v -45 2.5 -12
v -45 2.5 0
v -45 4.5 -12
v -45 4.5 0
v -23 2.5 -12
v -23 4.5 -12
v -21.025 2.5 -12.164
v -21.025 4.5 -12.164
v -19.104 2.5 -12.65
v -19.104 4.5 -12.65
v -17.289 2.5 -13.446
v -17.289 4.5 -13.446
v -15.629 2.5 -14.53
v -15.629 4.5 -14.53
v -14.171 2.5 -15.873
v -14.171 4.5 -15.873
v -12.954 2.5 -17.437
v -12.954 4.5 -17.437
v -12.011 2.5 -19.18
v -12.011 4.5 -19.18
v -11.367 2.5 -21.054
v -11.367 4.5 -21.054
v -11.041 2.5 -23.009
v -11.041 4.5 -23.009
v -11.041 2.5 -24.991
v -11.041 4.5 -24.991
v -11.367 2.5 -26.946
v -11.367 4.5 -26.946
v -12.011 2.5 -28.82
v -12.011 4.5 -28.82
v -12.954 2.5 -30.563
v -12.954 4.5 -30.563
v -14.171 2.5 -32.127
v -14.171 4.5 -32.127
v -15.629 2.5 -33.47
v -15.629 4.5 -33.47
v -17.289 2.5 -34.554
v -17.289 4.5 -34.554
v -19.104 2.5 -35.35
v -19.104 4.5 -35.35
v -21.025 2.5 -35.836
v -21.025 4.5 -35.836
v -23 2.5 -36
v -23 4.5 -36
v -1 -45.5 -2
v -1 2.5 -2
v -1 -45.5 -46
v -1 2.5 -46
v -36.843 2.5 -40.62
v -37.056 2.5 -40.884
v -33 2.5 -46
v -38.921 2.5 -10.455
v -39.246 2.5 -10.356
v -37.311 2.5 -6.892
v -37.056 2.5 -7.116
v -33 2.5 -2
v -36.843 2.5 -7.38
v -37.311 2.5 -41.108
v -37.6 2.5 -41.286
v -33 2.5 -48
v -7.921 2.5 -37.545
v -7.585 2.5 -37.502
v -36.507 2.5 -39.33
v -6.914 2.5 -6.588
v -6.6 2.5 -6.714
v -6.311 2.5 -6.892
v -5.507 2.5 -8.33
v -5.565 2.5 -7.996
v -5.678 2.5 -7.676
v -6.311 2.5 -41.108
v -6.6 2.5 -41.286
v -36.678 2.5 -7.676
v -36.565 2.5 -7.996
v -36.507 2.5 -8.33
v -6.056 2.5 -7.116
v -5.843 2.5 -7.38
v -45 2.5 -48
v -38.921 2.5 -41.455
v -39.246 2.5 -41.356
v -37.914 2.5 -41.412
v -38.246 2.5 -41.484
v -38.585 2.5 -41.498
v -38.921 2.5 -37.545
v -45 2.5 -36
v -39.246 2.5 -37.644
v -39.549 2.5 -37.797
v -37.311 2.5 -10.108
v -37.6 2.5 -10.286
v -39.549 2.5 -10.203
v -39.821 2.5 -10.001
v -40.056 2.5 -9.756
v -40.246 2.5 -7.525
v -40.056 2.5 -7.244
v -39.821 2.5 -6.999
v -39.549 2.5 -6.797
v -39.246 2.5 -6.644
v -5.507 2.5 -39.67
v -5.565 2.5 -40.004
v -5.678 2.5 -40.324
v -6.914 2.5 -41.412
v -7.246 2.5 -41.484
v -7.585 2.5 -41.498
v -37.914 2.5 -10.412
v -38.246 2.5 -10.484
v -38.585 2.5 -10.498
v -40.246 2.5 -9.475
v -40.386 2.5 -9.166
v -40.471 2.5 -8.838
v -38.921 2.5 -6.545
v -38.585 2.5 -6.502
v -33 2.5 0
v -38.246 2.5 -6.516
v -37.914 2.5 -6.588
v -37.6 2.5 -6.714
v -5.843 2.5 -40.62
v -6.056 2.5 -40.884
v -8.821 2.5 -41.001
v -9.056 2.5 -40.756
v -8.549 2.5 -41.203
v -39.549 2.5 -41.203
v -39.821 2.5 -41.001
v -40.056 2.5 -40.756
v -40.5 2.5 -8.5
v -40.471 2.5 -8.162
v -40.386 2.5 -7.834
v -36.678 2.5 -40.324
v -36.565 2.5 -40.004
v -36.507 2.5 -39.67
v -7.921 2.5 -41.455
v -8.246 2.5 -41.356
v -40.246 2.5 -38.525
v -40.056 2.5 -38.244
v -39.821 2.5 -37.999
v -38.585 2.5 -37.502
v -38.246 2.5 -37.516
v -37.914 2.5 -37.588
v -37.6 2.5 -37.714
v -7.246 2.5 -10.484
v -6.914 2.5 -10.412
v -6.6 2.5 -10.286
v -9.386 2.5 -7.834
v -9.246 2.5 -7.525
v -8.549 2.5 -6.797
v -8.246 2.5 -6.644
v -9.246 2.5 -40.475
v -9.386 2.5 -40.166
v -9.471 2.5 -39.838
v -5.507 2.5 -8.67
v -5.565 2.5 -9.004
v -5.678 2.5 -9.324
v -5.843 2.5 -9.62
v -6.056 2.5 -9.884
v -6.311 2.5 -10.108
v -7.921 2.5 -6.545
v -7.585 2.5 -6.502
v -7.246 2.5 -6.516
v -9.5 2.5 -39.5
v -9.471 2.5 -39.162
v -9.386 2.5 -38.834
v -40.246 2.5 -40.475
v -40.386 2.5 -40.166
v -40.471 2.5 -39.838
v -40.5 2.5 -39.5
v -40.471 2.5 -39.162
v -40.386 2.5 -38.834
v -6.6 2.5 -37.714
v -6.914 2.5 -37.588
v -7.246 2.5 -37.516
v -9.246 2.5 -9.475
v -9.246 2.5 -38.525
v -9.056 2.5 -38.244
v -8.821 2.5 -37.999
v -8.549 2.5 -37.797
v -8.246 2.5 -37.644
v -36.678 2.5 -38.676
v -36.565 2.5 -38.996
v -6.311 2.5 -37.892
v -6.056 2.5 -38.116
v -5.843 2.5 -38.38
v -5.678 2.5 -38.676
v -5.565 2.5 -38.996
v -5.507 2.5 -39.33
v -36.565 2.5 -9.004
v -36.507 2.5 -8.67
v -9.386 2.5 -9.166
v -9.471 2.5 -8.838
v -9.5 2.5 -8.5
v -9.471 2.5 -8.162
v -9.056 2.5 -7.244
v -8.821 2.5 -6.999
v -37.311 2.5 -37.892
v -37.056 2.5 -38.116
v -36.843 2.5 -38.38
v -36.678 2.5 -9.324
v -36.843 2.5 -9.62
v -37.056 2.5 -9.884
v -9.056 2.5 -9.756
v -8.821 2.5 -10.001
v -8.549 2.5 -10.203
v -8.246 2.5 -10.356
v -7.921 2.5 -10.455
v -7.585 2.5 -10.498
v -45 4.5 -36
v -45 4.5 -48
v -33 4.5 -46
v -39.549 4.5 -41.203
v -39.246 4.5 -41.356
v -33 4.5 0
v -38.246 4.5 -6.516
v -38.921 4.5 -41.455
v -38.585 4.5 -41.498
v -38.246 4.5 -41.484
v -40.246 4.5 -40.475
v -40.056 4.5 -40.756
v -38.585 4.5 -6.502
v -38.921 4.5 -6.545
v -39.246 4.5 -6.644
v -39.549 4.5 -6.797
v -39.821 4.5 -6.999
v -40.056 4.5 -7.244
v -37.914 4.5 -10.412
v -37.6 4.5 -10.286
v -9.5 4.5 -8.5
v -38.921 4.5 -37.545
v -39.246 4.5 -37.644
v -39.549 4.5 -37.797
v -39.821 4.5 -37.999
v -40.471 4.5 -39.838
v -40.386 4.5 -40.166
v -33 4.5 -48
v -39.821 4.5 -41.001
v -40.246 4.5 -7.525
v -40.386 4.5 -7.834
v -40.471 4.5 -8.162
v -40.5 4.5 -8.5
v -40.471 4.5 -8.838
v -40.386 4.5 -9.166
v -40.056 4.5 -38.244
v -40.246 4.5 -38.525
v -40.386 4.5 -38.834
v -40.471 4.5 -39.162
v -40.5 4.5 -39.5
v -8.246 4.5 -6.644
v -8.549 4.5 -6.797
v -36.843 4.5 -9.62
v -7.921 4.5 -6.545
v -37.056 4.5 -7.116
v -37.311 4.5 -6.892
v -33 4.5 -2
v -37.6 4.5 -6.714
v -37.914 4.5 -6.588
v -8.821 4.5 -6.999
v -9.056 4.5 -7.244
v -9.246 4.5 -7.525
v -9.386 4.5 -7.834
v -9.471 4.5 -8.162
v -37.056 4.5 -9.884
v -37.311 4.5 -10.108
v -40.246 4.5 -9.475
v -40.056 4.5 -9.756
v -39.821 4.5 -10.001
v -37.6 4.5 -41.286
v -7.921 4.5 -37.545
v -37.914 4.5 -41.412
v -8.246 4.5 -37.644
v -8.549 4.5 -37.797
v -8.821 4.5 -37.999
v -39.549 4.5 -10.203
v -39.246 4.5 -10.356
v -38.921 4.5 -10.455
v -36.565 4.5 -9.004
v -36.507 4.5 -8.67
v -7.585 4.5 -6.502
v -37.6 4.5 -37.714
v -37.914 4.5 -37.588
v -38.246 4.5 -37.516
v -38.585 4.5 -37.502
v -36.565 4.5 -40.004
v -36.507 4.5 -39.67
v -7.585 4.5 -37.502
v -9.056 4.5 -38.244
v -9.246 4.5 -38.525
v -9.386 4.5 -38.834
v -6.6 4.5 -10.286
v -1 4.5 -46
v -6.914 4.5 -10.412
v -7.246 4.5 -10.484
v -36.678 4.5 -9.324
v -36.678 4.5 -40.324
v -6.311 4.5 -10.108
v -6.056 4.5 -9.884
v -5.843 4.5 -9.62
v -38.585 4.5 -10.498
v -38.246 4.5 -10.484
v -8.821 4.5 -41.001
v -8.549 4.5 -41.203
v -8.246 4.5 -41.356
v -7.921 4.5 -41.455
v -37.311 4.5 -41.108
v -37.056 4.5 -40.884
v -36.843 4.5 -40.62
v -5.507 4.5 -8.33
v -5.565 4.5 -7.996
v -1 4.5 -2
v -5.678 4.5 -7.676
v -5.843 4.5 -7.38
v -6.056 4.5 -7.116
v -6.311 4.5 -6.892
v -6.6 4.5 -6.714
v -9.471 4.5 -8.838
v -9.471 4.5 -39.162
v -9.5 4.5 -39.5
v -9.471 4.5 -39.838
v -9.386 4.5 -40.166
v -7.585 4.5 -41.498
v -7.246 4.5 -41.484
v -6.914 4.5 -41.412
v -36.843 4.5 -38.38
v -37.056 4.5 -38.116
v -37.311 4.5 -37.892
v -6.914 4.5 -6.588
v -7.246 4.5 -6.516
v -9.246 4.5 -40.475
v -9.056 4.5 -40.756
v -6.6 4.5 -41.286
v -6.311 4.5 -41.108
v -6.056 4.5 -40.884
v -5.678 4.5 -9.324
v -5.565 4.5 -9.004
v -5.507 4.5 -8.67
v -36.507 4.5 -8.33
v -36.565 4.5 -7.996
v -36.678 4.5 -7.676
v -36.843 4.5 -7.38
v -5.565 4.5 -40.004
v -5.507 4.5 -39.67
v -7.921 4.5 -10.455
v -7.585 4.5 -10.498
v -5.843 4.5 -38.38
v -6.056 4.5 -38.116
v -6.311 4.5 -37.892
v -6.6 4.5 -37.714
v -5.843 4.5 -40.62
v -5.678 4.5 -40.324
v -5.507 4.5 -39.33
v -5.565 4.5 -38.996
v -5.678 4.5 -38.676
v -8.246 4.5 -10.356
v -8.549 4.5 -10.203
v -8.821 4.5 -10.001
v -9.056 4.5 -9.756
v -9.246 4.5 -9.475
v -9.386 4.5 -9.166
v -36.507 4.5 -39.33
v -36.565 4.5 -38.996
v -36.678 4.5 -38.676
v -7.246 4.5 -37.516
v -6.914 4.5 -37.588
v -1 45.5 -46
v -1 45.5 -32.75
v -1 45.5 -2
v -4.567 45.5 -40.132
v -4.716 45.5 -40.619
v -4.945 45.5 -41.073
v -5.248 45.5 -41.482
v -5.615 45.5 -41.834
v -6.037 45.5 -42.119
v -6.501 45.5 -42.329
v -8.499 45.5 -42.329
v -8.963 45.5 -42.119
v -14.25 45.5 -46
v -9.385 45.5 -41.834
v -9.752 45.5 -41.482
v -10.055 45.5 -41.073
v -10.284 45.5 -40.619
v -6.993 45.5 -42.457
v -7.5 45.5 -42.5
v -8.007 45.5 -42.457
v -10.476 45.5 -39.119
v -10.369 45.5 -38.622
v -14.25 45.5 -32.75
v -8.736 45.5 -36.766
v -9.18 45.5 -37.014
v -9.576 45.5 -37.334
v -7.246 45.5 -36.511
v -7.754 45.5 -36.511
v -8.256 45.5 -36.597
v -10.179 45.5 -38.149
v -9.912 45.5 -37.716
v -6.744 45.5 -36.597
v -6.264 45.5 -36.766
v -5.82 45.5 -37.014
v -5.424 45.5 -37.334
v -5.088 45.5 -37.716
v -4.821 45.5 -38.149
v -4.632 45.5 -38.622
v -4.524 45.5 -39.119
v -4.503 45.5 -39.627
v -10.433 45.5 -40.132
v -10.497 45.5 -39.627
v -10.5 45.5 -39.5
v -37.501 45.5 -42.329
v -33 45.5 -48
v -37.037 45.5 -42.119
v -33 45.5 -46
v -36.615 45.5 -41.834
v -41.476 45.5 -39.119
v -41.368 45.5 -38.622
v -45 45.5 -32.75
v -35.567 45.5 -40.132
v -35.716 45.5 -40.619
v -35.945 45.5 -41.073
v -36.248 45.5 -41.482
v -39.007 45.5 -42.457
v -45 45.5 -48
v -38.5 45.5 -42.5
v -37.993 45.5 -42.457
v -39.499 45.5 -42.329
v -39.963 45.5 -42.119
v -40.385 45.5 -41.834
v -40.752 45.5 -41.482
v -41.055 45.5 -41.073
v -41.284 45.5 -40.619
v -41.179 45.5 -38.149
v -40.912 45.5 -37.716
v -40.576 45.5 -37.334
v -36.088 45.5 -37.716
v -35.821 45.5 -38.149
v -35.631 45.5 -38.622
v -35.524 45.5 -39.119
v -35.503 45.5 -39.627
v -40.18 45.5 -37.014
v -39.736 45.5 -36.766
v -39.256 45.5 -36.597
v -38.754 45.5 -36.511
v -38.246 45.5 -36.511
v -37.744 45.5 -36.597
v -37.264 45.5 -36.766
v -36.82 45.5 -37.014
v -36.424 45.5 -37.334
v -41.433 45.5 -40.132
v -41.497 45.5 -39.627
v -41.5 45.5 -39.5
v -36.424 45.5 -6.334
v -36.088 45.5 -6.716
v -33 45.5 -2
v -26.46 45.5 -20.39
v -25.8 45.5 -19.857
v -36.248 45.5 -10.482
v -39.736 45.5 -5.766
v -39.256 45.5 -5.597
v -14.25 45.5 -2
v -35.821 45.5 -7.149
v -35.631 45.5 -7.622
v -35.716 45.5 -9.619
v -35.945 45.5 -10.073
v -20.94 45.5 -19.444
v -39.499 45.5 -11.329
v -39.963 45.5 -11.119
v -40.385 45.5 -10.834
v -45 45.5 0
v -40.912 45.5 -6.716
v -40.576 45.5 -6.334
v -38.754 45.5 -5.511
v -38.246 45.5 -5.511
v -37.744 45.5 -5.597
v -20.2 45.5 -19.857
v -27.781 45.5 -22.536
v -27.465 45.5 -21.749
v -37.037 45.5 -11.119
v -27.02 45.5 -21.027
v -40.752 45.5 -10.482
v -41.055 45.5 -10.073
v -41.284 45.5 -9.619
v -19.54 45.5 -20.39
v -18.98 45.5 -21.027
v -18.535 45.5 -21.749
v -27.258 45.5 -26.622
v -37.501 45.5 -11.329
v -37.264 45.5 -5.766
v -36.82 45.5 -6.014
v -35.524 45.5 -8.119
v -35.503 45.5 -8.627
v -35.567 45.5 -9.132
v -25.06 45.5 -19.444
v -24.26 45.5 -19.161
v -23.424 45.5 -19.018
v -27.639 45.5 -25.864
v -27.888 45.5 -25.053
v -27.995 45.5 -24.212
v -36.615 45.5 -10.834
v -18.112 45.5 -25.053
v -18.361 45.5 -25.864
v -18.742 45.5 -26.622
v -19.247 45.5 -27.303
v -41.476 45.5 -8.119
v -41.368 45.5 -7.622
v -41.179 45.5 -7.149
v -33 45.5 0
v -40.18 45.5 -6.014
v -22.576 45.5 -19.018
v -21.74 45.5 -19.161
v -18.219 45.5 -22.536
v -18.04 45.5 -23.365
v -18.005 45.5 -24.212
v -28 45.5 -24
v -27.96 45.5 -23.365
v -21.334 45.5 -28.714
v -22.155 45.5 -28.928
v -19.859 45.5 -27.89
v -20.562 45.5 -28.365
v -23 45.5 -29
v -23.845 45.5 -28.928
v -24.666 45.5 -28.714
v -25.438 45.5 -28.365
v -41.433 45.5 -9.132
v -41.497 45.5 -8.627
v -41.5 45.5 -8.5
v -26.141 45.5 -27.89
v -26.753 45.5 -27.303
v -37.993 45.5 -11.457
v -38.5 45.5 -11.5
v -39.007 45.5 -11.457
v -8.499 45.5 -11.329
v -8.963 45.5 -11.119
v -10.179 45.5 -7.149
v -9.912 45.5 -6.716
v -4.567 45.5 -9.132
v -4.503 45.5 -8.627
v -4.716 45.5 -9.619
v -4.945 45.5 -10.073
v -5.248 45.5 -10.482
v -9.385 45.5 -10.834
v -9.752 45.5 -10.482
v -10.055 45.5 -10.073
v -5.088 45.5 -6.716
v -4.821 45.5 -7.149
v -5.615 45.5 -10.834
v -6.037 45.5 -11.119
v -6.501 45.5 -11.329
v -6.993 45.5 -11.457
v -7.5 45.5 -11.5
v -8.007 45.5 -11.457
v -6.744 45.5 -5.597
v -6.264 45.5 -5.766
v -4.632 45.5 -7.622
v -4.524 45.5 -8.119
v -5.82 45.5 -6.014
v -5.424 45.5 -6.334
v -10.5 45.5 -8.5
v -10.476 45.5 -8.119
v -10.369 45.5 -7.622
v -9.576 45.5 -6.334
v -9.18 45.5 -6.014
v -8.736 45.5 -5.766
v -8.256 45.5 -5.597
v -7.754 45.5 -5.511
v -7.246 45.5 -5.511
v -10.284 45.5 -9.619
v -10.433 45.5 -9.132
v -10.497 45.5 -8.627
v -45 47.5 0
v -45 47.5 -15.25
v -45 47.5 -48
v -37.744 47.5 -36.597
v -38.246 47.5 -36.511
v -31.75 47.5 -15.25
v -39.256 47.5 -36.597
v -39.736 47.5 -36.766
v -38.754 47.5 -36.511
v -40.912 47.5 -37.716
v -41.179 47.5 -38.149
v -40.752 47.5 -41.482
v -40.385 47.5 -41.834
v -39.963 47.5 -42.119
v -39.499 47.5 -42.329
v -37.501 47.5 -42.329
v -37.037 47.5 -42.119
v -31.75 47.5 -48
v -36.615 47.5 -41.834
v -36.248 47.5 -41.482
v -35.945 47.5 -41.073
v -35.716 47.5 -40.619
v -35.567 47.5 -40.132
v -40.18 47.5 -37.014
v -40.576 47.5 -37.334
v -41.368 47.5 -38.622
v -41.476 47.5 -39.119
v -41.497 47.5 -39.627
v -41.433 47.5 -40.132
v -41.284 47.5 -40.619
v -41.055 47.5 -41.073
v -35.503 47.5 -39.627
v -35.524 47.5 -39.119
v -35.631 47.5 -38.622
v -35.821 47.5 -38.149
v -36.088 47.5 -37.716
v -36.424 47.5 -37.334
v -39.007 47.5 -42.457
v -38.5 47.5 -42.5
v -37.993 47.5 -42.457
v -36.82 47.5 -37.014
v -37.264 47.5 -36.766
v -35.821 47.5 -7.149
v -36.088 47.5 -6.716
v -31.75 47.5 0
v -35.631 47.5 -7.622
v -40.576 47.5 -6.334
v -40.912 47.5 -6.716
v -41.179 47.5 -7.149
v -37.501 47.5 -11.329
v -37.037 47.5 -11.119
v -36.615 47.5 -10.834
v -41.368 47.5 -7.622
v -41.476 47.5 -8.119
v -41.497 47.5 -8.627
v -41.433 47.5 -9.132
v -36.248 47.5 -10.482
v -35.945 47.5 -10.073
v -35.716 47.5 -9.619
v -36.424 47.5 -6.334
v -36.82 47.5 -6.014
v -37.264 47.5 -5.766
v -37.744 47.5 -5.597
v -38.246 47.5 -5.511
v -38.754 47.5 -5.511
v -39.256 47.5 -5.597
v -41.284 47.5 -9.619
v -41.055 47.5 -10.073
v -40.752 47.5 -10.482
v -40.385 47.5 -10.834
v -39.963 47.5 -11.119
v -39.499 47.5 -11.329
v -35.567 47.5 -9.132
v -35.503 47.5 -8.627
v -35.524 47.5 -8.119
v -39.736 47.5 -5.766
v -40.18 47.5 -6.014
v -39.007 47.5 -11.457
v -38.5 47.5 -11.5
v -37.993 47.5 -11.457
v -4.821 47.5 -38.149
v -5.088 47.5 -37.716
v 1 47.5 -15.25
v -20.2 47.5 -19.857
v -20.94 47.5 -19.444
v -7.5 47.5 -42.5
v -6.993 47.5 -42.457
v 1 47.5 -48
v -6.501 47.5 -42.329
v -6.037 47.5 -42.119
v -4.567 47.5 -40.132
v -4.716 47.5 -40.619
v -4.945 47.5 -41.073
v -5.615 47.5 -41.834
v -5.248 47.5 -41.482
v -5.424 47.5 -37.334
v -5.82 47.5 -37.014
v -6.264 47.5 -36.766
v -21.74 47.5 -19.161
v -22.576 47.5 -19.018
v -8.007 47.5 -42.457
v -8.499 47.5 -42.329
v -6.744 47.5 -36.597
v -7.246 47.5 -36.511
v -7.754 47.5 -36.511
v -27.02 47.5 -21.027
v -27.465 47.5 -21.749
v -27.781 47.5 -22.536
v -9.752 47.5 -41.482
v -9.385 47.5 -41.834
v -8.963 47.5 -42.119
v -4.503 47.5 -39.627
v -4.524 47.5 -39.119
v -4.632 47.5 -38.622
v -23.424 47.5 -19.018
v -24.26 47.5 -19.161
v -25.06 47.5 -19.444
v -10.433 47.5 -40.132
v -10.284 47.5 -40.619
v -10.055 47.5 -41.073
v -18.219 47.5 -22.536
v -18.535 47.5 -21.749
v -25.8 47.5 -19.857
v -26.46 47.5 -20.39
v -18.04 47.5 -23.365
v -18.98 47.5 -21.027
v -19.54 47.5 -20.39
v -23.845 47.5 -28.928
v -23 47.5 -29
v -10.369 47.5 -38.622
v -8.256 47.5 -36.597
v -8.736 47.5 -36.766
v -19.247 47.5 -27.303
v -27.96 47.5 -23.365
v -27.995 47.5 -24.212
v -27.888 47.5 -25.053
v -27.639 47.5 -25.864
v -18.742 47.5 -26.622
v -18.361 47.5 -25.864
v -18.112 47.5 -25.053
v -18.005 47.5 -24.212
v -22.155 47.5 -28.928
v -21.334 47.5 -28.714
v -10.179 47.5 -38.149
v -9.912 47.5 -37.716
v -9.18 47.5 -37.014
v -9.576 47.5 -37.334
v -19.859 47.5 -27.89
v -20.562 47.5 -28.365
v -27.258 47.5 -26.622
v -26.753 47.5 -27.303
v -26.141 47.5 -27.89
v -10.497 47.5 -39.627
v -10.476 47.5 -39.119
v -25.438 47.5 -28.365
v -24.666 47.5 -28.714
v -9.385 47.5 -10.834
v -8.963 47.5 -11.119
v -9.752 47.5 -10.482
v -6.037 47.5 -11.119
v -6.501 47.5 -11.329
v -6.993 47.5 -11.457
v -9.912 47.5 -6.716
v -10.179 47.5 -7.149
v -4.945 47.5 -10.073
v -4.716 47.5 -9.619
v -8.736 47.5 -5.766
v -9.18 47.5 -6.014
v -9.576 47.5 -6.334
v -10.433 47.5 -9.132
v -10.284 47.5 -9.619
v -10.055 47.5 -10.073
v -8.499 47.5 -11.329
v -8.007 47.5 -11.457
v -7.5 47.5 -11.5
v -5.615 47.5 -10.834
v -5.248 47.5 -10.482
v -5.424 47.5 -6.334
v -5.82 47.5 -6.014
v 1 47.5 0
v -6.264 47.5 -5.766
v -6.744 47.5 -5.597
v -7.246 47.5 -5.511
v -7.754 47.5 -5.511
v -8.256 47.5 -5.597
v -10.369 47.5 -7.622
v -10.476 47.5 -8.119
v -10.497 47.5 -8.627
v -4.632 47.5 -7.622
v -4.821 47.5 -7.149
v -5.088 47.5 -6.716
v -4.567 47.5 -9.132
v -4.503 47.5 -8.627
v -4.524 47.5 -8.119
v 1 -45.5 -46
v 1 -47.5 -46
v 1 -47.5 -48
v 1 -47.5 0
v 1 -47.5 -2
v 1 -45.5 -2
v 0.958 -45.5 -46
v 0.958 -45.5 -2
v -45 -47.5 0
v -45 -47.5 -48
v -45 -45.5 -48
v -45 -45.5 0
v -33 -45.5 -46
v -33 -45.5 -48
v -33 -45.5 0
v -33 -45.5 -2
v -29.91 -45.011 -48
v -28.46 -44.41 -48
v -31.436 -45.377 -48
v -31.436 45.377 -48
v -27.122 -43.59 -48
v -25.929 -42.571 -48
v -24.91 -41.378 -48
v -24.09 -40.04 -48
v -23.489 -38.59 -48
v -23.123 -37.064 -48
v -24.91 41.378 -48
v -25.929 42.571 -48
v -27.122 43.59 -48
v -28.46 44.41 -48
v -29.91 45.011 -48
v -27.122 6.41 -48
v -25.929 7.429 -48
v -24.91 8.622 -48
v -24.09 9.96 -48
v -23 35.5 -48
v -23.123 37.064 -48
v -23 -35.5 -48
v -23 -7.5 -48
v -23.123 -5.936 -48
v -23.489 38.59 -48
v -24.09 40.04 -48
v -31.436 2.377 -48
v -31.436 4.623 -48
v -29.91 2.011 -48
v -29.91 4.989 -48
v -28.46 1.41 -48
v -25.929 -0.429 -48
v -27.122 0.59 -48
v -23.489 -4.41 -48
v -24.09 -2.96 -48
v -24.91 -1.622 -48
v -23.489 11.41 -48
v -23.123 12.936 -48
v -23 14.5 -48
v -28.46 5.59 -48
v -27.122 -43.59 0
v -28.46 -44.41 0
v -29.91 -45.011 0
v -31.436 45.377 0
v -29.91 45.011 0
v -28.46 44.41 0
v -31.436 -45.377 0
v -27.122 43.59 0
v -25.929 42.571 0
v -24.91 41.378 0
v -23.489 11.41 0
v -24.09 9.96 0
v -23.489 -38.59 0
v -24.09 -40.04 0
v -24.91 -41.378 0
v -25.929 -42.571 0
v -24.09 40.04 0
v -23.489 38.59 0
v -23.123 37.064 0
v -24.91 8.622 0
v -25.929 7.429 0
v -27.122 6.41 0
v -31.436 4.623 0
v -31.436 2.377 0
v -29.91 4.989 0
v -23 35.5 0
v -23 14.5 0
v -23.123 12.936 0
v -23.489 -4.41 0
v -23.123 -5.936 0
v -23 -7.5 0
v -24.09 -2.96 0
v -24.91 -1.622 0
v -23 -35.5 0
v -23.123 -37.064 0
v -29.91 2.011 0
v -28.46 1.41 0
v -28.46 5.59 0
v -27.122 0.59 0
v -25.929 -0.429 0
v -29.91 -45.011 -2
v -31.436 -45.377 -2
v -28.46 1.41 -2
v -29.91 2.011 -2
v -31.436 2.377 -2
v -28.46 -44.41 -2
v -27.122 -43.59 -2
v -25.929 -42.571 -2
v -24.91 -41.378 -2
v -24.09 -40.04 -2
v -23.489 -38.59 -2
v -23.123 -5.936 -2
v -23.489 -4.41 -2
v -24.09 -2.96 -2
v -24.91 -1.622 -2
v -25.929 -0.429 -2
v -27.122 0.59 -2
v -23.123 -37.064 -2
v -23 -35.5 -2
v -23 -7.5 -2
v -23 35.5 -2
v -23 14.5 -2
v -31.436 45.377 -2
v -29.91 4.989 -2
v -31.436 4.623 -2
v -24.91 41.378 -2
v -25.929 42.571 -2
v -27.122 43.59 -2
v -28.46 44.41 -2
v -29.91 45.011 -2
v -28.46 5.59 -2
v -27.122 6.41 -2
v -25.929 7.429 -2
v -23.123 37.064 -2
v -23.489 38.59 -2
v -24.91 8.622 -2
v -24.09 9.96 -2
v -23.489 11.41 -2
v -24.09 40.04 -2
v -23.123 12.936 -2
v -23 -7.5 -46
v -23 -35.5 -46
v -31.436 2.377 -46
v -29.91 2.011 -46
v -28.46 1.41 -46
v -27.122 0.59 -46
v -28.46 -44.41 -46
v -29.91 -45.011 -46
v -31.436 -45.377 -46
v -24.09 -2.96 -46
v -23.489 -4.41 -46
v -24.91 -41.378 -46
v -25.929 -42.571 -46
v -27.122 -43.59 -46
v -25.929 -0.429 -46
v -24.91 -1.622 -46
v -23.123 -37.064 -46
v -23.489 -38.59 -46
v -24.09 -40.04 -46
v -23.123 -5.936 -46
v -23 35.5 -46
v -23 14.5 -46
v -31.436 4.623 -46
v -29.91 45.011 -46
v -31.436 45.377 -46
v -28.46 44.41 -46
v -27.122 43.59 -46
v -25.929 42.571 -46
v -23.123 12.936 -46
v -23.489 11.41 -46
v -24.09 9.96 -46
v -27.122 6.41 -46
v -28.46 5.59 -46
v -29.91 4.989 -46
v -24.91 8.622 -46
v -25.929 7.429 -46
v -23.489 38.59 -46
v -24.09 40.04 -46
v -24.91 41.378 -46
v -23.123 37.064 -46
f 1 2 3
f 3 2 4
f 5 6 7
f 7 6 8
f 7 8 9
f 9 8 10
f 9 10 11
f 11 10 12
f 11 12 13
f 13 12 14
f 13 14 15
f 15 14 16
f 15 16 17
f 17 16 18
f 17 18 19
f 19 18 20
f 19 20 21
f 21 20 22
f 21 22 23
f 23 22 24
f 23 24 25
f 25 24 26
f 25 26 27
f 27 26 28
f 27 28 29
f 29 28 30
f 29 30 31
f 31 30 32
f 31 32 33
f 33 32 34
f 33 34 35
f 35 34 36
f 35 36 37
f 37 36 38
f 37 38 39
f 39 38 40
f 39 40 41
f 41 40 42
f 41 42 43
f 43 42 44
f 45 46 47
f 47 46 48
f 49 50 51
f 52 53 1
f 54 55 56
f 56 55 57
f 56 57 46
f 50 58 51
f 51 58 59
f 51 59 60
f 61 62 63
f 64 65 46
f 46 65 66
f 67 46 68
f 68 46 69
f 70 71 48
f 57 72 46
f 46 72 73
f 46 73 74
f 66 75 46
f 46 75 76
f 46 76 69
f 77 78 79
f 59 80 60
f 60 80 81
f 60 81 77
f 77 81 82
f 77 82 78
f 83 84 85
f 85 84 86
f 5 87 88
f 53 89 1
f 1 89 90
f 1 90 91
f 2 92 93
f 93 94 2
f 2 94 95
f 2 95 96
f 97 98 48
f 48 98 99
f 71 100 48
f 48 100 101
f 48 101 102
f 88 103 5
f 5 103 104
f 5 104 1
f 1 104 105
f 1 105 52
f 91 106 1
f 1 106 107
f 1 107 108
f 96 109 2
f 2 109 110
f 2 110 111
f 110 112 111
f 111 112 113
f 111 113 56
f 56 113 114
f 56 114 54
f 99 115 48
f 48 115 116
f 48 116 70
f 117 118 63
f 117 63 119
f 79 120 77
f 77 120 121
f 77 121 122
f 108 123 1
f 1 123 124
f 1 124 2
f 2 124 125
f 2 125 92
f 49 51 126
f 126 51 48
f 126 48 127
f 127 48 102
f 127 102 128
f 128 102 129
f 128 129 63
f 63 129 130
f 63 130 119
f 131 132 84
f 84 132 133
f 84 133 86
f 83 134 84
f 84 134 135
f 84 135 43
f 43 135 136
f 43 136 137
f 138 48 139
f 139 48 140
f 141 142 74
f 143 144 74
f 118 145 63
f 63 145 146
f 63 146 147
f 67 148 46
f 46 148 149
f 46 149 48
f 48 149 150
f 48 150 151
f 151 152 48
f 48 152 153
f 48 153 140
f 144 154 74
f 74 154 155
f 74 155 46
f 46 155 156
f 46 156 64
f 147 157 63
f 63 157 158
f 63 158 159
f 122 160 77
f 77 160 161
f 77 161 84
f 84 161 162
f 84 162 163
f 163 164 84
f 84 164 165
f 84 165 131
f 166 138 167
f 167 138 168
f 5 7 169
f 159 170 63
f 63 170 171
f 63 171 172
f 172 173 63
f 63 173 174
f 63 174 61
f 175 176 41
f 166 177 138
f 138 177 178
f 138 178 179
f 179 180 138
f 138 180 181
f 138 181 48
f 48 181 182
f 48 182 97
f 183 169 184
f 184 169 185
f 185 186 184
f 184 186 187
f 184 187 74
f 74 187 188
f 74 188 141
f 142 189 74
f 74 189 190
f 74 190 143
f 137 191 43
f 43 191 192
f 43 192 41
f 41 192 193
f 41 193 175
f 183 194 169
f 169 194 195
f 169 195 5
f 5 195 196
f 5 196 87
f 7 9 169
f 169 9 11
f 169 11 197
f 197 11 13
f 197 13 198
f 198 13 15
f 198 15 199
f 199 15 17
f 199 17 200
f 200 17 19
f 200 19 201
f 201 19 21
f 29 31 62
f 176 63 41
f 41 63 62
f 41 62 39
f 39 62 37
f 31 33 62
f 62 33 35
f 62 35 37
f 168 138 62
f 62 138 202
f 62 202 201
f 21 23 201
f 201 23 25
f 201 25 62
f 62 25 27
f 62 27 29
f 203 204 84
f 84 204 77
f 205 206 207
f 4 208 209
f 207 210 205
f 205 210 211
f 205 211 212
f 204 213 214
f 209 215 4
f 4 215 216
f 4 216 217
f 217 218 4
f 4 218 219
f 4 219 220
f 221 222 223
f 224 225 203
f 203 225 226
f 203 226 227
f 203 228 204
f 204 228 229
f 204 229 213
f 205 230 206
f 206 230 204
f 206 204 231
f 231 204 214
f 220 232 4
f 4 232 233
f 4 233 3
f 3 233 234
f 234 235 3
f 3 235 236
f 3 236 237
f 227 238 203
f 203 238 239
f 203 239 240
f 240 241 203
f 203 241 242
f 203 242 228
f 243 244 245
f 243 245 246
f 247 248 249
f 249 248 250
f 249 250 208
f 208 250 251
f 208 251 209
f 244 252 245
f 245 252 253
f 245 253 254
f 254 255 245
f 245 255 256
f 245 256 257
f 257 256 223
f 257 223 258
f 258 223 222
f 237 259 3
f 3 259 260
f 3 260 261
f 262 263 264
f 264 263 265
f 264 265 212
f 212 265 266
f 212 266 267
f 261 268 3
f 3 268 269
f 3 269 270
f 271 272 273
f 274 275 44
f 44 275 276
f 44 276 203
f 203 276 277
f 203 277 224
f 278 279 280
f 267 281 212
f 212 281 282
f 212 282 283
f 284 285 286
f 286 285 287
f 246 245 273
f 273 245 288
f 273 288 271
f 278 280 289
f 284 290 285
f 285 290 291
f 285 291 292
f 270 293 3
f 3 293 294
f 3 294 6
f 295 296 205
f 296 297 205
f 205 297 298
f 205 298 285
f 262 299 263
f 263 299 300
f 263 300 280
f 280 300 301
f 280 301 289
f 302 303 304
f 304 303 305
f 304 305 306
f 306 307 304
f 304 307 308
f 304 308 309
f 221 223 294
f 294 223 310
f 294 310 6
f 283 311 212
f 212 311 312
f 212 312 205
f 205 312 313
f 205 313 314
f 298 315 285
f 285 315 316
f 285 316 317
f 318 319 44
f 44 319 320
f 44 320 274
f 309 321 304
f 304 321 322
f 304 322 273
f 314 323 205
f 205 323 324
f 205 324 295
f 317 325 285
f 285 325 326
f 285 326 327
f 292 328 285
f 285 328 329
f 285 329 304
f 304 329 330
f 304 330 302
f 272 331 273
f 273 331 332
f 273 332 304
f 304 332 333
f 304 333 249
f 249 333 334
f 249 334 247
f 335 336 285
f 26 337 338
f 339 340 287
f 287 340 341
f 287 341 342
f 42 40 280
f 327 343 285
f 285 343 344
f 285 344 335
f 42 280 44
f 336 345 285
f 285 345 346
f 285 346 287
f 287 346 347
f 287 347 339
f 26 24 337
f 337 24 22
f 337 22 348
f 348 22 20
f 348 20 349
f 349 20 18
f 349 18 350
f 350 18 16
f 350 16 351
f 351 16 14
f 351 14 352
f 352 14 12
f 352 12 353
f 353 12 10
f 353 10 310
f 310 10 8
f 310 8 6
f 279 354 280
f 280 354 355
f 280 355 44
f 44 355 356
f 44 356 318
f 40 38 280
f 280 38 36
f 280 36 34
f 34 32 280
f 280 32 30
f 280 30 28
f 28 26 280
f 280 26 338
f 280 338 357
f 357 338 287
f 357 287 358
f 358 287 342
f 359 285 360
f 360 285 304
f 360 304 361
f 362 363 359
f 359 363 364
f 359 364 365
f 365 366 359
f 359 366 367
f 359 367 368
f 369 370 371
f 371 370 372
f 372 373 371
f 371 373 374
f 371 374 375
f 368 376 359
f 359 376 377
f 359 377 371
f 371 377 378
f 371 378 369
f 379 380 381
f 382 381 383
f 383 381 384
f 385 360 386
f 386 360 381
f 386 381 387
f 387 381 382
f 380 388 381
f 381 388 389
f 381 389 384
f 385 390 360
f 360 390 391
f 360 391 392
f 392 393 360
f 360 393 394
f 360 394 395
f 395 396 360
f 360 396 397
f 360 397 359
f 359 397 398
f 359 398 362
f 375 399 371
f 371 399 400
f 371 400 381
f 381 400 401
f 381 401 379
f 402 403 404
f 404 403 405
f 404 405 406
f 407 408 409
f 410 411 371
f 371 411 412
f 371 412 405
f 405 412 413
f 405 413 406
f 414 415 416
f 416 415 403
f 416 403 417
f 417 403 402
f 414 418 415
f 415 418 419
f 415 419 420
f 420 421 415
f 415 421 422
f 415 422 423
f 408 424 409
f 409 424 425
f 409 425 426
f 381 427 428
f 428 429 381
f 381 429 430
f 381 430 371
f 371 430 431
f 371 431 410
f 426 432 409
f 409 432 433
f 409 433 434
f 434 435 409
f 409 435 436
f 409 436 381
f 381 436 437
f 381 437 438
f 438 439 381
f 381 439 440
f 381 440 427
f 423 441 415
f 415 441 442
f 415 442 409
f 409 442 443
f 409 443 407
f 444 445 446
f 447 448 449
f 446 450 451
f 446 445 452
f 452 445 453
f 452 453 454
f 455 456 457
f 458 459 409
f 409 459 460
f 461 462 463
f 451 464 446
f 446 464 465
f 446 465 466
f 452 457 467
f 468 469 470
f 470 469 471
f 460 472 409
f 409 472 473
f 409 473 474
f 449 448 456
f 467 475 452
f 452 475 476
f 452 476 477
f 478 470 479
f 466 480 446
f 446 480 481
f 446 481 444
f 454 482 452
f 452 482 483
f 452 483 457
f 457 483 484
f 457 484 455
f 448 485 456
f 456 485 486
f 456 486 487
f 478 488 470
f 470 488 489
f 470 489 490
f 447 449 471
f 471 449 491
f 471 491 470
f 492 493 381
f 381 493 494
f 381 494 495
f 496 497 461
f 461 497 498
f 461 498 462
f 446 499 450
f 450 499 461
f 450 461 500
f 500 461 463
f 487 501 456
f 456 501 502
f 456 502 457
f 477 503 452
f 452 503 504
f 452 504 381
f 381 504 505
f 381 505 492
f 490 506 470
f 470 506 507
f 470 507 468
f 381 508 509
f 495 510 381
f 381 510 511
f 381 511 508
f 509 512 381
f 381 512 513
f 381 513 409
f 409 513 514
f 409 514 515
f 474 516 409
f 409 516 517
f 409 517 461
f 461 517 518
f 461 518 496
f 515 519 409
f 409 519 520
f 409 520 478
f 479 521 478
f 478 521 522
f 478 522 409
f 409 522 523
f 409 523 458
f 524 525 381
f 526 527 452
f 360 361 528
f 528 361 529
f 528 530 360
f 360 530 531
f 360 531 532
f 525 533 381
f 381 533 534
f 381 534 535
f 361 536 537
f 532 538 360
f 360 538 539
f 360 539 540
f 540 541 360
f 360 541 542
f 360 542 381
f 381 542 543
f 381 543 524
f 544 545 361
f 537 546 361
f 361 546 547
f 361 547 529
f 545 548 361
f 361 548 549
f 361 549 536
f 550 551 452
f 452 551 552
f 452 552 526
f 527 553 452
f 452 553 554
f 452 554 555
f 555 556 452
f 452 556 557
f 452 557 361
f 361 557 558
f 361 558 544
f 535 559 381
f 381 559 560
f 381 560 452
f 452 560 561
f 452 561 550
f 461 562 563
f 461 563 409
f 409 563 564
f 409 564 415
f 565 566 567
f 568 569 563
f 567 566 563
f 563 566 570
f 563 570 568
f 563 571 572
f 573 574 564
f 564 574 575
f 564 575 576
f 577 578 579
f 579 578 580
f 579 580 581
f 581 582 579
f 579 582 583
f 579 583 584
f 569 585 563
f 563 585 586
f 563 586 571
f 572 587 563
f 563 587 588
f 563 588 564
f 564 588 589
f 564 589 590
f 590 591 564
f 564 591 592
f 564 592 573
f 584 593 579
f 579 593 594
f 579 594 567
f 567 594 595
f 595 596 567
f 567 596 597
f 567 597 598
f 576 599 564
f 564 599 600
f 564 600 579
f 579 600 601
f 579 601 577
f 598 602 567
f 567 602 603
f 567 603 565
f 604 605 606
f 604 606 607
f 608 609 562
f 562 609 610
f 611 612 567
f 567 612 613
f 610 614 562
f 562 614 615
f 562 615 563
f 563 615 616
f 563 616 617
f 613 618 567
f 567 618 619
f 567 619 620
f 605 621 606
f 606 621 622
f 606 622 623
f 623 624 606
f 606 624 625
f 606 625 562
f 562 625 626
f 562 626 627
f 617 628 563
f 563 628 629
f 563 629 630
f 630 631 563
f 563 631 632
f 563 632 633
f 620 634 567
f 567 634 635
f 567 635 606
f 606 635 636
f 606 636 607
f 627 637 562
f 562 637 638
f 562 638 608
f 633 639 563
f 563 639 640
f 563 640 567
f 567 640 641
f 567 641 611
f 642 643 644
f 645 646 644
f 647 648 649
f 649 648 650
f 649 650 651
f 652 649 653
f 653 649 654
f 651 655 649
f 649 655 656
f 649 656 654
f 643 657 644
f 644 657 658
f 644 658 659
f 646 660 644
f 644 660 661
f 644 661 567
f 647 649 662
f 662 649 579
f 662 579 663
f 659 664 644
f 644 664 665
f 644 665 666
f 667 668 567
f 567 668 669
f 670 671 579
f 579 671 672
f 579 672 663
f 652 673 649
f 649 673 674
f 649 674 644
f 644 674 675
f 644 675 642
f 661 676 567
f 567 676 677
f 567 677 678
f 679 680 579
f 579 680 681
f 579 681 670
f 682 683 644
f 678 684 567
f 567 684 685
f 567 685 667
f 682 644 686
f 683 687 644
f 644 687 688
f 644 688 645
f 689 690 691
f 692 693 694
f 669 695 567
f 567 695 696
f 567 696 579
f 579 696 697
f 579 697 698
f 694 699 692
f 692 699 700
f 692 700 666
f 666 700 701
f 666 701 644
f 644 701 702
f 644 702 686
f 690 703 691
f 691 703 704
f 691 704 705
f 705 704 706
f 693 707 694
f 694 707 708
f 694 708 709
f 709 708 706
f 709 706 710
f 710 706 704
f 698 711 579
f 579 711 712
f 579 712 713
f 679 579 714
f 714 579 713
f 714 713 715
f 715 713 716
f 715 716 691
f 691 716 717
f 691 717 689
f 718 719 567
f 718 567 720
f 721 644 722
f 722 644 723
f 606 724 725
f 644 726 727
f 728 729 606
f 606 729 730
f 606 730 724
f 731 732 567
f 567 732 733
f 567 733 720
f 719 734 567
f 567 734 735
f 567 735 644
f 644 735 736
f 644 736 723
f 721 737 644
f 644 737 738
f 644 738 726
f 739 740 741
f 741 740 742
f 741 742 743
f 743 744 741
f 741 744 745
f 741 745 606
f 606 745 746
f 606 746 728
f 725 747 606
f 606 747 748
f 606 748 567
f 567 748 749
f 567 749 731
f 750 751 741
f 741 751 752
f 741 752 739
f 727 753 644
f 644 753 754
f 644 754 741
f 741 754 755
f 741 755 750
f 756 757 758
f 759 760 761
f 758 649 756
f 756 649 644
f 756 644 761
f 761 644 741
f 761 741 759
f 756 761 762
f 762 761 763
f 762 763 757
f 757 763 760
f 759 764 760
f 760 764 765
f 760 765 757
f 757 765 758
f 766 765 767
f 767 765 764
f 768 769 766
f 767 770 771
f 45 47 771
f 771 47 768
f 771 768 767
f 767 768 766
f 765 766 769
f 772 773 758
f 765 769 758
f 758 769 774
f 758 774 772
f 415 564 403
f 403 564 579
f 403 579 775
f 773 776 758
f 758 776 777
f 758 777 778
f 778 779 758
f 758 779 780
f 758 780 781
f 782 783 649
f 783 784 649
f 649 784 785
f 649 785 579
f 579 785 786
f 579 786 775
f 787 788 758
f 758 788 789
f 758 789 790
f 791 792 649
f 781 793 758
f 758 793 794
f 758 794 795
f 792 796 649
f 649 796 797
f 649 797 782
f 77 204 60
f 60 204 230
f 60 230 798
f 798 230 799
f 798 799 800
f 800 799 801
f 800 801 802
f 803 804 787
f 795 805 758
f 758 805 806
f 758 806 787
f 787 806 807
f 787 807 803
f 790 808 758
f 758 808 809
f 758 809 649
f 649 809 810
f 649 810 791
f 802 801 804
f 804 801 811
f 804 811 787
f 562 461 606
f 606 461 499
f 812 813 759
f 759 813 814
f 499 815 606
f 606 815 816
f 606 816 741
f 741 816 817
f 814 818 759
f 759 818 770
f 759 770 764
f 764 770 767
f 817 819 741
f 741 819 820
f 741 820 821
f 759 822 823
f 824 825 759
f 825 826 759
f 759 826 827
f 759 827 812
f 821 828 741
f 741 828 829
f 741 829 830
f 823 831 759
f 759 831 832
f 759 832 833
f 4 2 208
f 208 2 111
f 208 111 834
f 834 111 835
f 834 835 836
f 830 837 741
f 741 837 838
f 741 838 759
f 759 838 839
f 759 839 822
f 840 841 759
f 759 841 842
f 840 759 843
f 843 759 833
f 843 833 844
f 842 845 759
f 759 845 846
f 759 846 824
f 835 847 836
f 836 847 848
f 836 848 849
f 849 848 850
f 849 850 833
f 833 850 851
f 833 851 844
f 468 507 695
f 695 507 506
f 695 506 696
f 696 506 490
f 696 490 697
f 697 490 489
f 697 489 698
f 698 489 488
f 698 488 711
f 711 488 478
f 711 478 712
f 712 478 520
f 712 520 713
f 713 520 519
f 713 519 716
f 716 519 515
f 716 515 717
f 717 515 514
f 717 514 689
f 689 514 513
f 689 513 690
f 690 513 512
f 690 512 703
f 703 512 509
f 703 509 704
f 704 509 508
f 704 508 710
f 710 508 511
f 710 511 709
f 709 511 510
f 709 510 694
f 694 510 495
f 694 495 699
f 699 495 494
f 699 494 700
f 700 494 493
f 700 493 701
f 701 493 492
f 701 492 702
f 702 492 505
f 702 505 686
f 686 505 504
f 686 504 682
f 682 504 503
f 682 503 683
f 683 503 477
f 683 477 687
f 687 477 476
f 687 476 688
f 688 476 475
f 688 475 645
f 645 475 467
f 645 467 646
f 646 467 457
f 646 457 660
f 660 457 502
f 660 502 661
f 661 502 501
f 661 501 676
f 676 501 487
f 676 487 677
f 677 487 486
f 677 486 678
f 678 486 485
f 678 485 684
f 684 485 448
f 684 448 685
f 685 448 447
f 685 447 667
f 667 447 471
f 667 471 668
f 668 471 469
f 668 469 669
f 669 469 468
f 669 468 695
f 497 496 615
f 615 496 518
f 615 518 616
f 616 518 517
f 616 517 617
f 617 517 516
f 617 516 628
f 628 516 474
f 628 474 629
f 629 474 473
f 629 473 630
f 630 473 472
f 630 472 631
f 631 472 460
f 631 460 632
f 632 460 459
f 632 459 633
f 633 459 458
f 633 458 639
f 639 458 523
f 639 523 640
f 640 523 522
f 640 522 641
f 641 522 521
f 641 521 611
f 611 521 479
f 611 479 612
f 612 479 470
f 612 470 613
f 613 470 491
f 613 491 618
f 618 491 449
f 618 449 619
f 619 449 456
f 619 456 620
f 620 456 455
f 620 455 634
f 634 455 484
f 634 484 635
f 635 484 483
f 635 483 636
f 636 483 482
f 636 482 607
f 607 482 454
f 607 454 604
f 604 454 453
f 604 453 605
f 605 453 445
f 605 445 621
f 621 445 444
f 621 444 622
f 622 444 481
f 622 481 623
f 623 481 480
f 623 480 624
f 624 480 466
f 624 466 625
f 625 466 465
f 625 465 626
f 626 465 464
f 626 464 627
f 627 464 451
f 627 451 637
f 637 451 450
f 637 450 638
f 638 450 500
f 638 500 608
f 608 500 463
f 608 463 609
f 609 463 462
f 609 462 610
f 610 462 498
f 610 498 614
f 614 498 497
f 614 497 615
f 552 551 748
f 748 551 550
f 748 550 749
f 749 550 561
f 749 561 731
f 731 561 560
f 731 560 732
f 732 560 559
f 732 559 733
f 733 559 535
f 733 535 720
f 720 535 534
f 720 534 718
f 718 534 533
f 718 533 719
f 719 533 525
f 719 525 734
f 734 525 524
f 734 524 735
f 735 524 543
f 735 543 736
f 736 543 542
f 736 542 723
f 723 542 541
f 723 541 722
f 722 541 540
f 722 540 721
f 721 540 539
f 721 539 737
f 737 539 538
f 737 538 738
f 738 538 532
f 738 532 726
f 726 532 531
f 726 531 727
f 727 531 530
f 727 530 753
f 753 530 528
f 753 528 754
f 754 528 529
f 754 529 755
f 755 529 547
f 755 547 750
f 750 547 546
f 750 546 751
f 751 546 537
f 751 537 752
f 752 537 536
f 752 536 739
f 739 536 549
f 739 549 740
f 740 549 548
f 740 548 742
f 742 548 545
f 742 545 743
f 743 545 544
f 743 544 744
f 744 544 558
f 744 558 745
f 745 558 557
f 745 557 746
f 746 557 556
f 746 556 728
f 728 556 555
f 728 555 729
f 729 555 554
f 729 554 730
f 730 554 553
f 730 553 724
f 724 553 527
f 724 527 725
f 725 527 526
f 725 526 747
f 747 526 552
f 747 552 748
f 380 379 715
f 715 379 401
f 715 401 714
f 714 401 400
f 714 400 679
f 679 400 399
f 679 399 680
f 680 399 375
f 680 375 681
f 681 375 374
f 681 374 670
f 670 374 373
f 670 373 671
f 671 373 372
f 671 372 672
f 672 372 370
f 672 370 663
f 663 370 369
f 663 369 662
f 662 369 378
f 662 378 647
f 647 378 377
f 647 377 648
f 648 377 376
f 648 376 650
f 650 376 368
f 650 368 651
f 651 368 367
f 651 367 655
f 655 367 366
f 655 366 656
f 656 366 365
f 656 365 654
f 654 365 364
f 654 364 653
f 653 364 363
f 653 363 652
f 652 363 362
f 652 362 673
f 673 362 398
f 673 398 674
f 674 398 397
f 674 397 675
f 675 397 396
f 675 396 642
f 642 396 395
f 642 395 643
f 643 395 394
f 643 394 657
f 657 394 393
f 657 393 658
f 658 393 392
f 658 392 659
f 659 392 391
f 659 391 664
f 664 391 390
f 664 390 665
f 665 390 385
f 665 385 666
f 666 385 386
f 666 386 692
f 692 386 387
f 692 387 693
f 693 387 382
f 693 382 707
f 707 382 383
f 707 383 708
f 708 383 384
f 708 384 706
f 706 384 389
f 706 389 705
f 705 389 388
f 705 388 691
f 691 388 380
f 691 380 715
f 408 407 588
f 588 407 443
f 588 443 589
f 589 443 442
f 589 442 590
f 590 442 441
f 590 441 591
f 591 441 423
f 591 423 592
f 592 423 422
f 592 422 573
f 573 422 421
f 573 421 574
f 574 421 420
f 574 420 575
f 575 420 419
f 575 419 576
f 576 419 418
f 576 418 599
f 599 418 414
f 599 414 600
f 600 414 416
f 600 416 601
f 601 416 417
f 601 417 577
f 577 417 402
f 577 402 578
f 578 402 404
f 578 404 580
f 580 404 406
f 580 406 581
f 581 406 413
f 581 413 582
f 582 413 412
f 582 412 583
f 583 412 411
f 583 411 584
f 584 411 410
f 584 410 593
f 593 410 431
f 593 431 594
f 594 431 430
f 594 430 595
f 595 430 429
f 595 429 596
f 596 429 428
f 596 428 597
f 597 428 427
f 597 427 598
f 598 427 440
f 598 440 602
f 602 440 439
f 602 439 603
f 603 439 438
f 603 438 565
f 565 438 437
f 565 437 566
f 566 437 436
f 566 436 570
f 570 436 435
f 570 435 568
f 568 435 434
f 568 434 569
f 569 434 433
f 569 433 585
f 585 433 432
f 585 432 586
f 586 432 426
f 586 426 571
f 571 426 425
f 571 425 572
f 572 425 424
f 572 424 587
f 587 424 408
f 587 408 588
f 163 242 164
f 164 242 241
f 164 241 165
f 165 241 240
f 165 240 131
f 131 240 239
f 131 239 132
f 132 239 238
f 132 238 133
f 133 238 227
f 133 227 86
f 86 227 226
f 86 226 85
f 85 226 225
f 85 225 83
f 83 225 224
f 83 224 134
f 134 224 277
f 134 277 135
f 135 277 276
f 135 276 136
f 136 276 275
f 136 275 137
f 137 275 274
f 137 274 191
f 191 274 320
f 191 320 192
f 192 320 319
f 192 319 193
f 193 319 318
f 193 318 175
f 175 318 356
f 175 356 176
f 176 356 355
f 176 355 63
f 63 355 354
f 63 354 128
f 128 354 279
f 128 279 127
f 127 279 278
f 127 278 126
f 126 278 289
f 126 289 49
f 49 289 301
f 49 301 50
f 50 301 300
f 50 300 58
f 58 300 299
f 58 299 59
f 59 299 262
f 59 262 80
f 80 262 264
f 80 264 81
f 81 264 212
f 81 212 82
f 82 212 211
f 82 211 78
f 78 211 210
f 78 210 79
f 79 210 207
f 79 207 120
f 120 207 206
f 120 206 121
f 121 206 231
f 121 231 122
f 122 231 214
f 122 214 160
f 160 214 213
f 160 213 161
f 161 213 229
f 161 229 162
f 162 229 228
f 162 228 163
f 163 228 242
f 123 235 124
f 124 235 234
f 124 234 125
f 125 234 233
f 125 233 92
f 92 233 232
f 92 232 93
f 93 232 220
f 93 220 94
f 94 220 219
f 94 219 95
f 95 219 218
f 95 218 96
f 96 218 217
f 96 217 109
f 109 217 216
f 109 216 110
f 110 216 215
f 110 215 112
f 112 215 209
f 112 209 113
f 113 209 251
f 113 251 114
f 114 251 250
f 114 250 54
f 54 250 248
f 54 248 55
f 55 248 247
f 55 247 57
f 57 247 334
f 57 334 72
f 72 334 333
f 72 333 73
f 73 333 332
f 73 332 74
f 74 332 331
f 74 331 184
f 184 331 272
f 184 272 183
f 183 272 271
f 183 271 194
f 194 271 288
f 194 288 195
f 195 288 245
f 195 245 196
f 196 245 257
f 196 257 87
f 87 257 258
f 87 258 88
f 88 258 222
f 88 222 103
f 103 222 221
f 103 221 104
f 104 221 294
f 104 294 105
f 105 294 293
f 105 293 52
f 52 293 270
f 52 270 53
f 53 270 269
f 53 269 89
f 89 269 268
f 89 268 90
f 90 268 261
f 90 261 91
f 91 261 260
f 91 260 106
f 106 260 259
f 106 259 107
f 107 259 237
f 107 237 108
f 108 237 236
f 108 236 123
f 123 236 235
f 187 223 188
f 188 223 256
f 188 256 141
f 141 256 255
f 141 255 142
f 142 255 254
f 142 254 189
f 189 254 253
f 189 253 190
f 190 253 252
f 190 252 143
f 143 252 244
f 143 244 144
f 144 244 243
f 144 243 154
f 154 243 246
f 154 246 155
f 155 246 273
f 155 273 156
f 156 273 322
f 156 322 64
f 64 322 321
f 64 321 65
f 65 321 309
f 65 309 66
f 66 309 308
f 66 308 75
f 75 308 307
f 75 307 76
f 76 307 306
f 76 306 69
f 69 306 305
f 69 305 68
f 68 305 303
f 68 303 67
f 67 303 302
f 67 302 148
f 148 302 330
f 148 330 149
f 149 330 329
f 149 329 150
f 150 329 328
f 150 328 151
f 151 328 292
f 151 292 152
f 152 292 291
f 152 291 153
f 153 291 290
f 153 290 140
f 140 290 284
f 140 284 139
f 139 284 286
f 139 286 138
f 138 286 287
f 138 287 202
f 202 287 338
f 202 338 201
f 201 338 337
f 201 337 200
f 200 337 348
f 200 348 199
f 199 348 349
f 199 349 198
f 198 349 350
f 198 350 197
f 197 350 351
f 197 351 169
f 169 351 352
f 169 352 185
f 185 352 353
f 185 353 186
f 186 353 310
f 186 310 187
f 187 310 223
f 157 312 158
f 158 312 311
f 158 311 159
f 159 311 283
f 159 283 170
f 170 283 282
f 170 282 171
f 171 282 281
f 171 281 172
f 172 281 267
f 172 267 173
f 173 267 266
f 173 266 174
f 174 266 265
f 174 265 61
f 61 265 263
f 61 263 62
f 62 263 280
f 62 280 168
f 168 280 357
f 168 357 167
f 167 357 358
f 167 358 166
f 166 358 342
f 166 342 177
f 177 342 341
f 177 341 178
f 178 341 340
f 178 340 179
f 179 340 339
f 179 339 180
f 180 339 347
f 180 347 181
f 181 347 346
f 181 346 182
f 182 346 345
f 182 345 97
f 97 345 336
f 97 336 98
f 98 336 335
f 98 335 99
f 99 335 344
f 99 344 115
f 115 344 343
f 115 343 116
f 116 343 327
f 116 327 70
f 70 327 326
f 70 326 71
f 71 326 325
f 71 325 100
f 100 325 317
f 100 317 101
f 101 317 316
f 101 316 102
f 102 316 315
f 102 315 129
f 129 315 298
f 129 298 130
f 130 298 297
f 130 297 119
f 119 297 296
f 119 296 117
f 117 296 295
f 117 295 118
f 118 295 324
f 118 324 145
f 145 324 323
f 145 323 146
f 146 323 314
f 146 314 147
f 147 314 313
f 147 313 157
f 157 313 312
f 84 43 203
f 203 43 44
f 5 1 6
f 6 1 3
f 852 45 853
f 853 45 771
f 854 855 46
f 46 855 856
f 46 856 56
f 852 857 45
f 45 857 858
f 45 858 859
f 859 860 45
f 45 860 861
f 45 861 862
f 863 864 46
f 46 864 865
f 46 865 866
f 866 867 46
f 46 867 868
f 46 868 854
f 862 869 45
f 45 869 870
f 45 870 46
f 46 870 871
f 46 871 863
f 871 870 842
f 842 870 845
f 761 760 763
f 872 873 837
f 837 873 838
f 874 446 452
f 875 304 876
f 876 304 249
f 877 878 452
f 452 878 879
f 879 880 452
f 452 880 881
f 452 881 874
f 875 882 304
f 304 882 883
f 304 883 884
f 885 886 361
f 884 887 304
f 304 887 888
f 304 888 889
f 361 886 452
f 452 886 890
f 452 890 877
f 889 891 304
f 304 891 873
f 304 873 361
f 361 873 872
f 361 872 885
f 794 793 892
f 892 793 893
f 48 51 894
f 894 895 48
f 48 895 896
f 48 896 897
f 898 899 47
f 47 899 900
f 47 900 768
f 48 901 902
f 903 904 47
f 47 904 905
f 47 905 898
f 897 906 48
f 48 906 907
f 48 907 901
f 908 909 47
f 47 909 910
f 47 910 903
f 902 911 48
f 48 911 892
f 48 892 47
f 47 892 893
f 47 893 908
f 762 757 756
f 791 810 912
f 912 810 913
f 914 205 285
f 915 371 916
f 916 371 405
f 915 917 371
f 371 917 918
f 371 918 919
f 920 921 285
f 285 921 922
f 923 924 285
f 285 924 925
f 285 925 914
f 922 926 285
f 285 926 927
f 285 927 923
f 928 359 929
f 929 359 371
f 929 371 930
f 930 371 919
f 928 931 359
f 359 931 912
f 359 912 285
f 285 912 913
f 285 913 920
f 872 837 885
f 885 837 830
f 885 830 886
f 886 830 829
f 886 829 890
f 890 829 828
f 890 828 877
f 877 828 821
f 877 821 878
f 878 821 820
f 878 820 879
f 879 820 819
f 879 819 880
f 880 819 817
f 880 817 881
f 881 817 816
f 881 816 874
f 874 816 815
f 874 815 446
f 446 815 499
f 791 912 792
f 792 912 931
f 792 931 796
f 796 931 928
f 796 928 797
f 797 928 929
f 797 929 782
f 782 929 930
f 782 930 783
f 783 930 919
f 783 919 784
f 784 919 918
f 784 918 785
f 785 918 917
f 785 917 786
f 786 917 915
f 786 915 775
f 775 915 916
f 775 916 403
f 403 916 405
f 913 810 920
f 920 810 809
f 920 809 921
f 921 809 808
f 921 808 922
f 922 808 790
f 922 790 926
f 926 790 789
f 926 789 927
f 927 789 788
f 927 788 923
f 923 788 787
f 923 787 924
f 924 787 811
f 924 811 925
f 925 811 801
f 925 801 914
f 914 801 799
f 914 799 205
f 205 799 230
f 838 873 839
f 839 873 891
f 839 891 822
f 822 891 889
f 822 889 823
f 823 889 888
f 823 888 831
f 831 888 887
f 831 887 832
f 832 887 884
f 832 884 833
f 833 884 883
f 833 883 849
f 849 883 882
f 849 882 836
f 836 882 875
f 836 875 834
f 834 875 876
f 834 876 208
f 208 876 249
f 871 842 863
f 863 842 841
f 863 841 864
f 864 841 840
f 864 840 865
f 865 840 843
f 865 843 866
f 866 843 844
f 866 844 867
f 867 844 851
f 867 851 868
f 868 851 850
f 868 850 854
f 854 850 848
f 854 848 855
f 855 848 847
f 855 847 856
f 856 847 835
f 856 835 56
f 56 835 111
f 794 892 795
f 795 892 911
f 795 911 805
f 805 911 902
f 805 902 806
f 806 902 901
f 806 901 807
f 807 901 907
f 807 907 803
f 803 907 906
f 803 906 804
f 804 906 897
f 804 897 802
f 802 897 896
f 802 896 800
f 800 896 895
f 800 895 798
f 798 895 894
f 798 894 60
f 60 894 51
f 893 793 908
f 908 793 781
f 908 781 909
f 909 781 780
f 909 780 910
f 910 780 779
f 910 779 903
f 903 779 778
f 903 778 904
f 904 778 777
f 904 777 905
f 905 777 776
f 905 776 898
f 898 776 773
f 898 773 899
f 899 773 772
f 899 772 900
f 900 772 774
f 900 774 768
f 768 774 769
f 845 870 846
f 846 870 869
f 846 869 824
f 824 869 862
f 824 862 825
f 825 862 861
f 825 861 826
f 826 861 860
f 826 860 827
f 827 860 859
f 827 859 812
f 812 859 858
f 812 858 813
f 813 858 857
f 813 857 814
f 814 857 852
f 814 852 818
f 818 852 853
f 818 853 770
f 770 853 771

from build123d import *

# Parameters (mm, degrees)
BOSS_EXTRUDE1_DEPTH            = 48
CUT_EXTRUDE1_REACH             = 117.56
SKETCH5_R                      = 5
SKETCH5_R_2                    = 3
CUT_EXTRUDE1_DIRECTION_2_DEPTH = 116.559508479
SKETCH10_R                     = 12
SKETCH10_R_2                   = 2
CUT_EXTRUDE3_DEPTH             = 2
SKETCH15_W                     = 22
SKETCH15_H                     = 24
CUT_EXTRUDE5_DEPTH             = 2
BOSS_EXTRUDE7_DEPTH            = 93
BOSS_EXTRUDE7_DEPTH_BACK       = 2
SKETCH16_W                     = 24
SKETCH16_H                     = 2
FILLET1_R                      = 10


with BuildPart() as part:
    # Sketch1 → Boss-Extrude1 (new body)
    with BuildSketch(Plane.XY):
        Polygon((-1, 2.5), (-1, -45.5), (-45, -45.5), (-45, -47.5), (-1, -47.5), (1, -47.5), (0.957894737, -45.5), (1, -45.5), (1, 2.5), (1, 4.5), (1, 45.5), (1, 47.5), (-1, 47.5), (-45, 47.5), (-45, 45.5), (-1, 45.5), (-1, 4.5), (-45, 4.5), (-45, 2.5), align=None)
    extrude(amount=-BOSS_EXTRUDE1_DEPTH)

    # Sketch5 → Cut-Extrude1 (cut, up to next)
    with BuildSketch(Plane(origin=(0, 47.5, 0), x_dir=(1, 0, 0), z_dir=(0, 1, 0)), mode=Mode.PRIVATE) as cut_extrude1_sk1:
        with Locations(Location((-23, 24, 0), (0, 0, 90))):
            Circle(SKETCH5_R)
    cut_extrude1_tool1 = extrude(cut_extrude1_sk1.sketch, amount=-CUT_EXTRUDE1_REACH, mode=Mode.PRIVATE) & part.part
    # Sketch5 → Cut-Extrude1 (cut, up to next)
    with BuildSketch(Plane(origin=(0, 47.5, 0), x_dir=(1, 0, 0), z_dir=(0, 1, 0)), mode=Mode.PRIVATE) as cut_extrude1_sk2:
        with Locations(Location((-38.5, 39.5, 0), (0, 0, 90))):
            Circle(SKETCH5_R_2)
    cut_extrude1_tool2 = extrude(cut_extrude1_sk2.sketch, amount=-CUT_EXTRUDE1_REACH, mode=Mode.PRIVATE) & part.part
    # Sketch5 → Cut-Extrude1 (cut, up to next)
    with BuildSketch(Plane(origin=(0, 47.5, 0), x_dir=(1, 0, 0), z_dir=(0, 1, 0)), mode=Mode.PRIVATE) as cut_extrude1_sk3:
        with Locations(Location((-7.5, 39.5, 0), (0, 0, 90))):
            Circle(SKETCH5_R_2)
    cut_extrude1_tool3 = extrude(cut_extrude1_sk3.sketch, amount=-CUT_EXTRUDE1_REACH, mode=Mode.PRIVATE) & part.part
    # Sketch5 → Cut-Extrude1 (cut, up to next)
    with BuildSketch(Plane(origin=(0, 47.5, 0), x_dir=(1, 0, 0), z_dir=(0, 1, 0)), mode=Mode.PRIVATE) as cut_extrude1_sk4:
        with Locations(Location((-7.5, 8.5, 0), (0, 0, 90))):
            Circle(SKETCH5_R_2)
    cut_extrude1_tool4 = extrude(cut_extrude1_sk4.sketch, amount=-CUT_EXTRUDE1_REACH, mode=Mode.PRIVATE) & part.part
    # Sketch5 → Cut-Extrude1 (cut, up to next)
    with BuildSketch(Plane(origin=(0, 47.5, 0), x_dir=(1, 0, 0), z_dir=(0, 1, 0)), mode=Mode.PRIVATE) as cut_extrude1_sk5:
        with Locations(Location((-38.5, 8.5, 0), (0, 0, 90))):
            Circle(SKETCH5_R_2)
    cut_extrude1_tool5 = extrude(cut_extrude1_sk5.sketch, amount=-CUT_EXTRUDE1_REACH, mode=Mode.PRIVATE) & part.part
    add(cut_extrude1_tool1.solids().sort_by_distance((-23, 47.5, -24))[0], mode=Mode.SUBTRACT)
    add(cut_extrude1_tool2.solids().sort_by_distance((-38.5, 47.5, -39.5))[0], mode=Mode.SUBTRACT)
    add(cut_extrude1_tool3.solids().sort_by_distance((-7.5, 47.5, -39.5))[0], mode=Mode.SUBTRACT)
    add(cut_extrude1_tool4.solids().sort_by_distance((-7.5, 47.5, -8.5))[0], mode=Mode.SUBTRACT)
    add(cut_extrude1_tool5.solids().sort_by_distance((-38.5, 47.5, -8.5))[0], mode=Mode.SUBTRACT)

    # Sketch5 → Cut-Extrude1 direction 2 (cut)
    with BuildSketch(Plane(origin=(0, 47.5, 0), x_dir=(1, 0, 0), z_dir=(0, 1, 0))):
        with Locations(Location((-23, 24, 0), (0, 0, 90))):
            Circle(SKETCH5_R)
        with Locations(Location((-38.5, 39.5, 0), (0, 0, 90))):
            Circle(SKETCH5_R_2)
        with Locations(Location((-7.5, 39.5, 0), (0, 0, 90))):
            Circle(SKETCH5_R_2)
        with Locations(Location((-7.5, 8.5, 0), (0, 0, 90))):
            Circle(SKETCH5_R_2)
        with Locations(Location((-38.5, 8.5, 0), (0, 0, 90))):
            Circle(SKETCH5_R_2)
    extrude(amount=CUT_EXTRUDE1_DIRECTION_2_DEPTH, mode=Mode.SUBTRACT)

    # Sketch10 → Cut-Extrude3 (cut)
    with BuildSketch(Plane(origin=(0, 4.5, 0), x_dir=(1, 0, 0), z_dir=(0, 1, 0))):
        with Locations(Location((-23, 24, 0), (0, 0, 180))):
            Circle(SKETCH10_R)
        with Locations(Location((-7.5, 39.5, 0), (0, 0, 180))):
            Circle(SKETCH10_R_2)
        with Locations(Location((-7.5, 8.5, 0), (0, 0, 180))):
            Circle(SKETCH10_R_2)
        with Locations(Location((-38.5, 8.5, 0), (0, 0, 180))):
            Circle(SKETCH10_R_2)
        with Locations(Location((-38.5, 39.5, 0), (0, 0, 180))):
            Circle(SKETCH10_R_2)
    extrude(amount=-CUT_EXTRUDE3_DEPTH, mode=Mode.SUBTRACT)

    # Sketch15 → Cut-Extrude5 (cut)
    with BuildSketch(Plane(origin=(0, 4.5, 0), x_dir=(1, 0, 0), z_dir=(0, 1, 0))):
        with Locations((-34, 24)):
            Rectangle(SKETCH15_W, SKETCH15_H)
    extrude(amount=-CUT_EXTRUDE5_DEPTH, mode=Mode.SUBTRACT)

    # Sketch16 → Boss-Extrude7 (add, two sides: drawn at the far end of the back side and taken through both)
    with BuildSketch(Plane(origin=(0, -45.5, 0), x_dir=(1, 0, 0), z_dir=(0, 1, 0)).offset(-BOSS_EXTRUDE7_DEPTH_BACK)):
        with Locations((-11, 1)):
            Rectangle(SKETCH16_W, SKETCH16_H)
        with Locations((-11, 47)):
            Rectangle(SKETCH16_W, SKETCH16_H)
    extrude(amount=BOSS_EXTRUDE7_DEPTH + BOSS_EXTRUDE7_DEPTH_BACK)

    # Fillet1
    fillet1_edges = [part.edges().sort_by_distance(p)[0] for p in [
        (-23, -45.5, -1),
        (-23, 2.5, -1),
        (-23, 4.5, -1),
        (-23, 45.5, -1),
        (-23, -45.5, -47),
        (-23, 2.5, -47),
        (-23, 4.5, -47),
        (-23, 45.5, -47),
    ]]
    fillet(fillet1_edges, radius=FILLET1_R)


solid = part.part
